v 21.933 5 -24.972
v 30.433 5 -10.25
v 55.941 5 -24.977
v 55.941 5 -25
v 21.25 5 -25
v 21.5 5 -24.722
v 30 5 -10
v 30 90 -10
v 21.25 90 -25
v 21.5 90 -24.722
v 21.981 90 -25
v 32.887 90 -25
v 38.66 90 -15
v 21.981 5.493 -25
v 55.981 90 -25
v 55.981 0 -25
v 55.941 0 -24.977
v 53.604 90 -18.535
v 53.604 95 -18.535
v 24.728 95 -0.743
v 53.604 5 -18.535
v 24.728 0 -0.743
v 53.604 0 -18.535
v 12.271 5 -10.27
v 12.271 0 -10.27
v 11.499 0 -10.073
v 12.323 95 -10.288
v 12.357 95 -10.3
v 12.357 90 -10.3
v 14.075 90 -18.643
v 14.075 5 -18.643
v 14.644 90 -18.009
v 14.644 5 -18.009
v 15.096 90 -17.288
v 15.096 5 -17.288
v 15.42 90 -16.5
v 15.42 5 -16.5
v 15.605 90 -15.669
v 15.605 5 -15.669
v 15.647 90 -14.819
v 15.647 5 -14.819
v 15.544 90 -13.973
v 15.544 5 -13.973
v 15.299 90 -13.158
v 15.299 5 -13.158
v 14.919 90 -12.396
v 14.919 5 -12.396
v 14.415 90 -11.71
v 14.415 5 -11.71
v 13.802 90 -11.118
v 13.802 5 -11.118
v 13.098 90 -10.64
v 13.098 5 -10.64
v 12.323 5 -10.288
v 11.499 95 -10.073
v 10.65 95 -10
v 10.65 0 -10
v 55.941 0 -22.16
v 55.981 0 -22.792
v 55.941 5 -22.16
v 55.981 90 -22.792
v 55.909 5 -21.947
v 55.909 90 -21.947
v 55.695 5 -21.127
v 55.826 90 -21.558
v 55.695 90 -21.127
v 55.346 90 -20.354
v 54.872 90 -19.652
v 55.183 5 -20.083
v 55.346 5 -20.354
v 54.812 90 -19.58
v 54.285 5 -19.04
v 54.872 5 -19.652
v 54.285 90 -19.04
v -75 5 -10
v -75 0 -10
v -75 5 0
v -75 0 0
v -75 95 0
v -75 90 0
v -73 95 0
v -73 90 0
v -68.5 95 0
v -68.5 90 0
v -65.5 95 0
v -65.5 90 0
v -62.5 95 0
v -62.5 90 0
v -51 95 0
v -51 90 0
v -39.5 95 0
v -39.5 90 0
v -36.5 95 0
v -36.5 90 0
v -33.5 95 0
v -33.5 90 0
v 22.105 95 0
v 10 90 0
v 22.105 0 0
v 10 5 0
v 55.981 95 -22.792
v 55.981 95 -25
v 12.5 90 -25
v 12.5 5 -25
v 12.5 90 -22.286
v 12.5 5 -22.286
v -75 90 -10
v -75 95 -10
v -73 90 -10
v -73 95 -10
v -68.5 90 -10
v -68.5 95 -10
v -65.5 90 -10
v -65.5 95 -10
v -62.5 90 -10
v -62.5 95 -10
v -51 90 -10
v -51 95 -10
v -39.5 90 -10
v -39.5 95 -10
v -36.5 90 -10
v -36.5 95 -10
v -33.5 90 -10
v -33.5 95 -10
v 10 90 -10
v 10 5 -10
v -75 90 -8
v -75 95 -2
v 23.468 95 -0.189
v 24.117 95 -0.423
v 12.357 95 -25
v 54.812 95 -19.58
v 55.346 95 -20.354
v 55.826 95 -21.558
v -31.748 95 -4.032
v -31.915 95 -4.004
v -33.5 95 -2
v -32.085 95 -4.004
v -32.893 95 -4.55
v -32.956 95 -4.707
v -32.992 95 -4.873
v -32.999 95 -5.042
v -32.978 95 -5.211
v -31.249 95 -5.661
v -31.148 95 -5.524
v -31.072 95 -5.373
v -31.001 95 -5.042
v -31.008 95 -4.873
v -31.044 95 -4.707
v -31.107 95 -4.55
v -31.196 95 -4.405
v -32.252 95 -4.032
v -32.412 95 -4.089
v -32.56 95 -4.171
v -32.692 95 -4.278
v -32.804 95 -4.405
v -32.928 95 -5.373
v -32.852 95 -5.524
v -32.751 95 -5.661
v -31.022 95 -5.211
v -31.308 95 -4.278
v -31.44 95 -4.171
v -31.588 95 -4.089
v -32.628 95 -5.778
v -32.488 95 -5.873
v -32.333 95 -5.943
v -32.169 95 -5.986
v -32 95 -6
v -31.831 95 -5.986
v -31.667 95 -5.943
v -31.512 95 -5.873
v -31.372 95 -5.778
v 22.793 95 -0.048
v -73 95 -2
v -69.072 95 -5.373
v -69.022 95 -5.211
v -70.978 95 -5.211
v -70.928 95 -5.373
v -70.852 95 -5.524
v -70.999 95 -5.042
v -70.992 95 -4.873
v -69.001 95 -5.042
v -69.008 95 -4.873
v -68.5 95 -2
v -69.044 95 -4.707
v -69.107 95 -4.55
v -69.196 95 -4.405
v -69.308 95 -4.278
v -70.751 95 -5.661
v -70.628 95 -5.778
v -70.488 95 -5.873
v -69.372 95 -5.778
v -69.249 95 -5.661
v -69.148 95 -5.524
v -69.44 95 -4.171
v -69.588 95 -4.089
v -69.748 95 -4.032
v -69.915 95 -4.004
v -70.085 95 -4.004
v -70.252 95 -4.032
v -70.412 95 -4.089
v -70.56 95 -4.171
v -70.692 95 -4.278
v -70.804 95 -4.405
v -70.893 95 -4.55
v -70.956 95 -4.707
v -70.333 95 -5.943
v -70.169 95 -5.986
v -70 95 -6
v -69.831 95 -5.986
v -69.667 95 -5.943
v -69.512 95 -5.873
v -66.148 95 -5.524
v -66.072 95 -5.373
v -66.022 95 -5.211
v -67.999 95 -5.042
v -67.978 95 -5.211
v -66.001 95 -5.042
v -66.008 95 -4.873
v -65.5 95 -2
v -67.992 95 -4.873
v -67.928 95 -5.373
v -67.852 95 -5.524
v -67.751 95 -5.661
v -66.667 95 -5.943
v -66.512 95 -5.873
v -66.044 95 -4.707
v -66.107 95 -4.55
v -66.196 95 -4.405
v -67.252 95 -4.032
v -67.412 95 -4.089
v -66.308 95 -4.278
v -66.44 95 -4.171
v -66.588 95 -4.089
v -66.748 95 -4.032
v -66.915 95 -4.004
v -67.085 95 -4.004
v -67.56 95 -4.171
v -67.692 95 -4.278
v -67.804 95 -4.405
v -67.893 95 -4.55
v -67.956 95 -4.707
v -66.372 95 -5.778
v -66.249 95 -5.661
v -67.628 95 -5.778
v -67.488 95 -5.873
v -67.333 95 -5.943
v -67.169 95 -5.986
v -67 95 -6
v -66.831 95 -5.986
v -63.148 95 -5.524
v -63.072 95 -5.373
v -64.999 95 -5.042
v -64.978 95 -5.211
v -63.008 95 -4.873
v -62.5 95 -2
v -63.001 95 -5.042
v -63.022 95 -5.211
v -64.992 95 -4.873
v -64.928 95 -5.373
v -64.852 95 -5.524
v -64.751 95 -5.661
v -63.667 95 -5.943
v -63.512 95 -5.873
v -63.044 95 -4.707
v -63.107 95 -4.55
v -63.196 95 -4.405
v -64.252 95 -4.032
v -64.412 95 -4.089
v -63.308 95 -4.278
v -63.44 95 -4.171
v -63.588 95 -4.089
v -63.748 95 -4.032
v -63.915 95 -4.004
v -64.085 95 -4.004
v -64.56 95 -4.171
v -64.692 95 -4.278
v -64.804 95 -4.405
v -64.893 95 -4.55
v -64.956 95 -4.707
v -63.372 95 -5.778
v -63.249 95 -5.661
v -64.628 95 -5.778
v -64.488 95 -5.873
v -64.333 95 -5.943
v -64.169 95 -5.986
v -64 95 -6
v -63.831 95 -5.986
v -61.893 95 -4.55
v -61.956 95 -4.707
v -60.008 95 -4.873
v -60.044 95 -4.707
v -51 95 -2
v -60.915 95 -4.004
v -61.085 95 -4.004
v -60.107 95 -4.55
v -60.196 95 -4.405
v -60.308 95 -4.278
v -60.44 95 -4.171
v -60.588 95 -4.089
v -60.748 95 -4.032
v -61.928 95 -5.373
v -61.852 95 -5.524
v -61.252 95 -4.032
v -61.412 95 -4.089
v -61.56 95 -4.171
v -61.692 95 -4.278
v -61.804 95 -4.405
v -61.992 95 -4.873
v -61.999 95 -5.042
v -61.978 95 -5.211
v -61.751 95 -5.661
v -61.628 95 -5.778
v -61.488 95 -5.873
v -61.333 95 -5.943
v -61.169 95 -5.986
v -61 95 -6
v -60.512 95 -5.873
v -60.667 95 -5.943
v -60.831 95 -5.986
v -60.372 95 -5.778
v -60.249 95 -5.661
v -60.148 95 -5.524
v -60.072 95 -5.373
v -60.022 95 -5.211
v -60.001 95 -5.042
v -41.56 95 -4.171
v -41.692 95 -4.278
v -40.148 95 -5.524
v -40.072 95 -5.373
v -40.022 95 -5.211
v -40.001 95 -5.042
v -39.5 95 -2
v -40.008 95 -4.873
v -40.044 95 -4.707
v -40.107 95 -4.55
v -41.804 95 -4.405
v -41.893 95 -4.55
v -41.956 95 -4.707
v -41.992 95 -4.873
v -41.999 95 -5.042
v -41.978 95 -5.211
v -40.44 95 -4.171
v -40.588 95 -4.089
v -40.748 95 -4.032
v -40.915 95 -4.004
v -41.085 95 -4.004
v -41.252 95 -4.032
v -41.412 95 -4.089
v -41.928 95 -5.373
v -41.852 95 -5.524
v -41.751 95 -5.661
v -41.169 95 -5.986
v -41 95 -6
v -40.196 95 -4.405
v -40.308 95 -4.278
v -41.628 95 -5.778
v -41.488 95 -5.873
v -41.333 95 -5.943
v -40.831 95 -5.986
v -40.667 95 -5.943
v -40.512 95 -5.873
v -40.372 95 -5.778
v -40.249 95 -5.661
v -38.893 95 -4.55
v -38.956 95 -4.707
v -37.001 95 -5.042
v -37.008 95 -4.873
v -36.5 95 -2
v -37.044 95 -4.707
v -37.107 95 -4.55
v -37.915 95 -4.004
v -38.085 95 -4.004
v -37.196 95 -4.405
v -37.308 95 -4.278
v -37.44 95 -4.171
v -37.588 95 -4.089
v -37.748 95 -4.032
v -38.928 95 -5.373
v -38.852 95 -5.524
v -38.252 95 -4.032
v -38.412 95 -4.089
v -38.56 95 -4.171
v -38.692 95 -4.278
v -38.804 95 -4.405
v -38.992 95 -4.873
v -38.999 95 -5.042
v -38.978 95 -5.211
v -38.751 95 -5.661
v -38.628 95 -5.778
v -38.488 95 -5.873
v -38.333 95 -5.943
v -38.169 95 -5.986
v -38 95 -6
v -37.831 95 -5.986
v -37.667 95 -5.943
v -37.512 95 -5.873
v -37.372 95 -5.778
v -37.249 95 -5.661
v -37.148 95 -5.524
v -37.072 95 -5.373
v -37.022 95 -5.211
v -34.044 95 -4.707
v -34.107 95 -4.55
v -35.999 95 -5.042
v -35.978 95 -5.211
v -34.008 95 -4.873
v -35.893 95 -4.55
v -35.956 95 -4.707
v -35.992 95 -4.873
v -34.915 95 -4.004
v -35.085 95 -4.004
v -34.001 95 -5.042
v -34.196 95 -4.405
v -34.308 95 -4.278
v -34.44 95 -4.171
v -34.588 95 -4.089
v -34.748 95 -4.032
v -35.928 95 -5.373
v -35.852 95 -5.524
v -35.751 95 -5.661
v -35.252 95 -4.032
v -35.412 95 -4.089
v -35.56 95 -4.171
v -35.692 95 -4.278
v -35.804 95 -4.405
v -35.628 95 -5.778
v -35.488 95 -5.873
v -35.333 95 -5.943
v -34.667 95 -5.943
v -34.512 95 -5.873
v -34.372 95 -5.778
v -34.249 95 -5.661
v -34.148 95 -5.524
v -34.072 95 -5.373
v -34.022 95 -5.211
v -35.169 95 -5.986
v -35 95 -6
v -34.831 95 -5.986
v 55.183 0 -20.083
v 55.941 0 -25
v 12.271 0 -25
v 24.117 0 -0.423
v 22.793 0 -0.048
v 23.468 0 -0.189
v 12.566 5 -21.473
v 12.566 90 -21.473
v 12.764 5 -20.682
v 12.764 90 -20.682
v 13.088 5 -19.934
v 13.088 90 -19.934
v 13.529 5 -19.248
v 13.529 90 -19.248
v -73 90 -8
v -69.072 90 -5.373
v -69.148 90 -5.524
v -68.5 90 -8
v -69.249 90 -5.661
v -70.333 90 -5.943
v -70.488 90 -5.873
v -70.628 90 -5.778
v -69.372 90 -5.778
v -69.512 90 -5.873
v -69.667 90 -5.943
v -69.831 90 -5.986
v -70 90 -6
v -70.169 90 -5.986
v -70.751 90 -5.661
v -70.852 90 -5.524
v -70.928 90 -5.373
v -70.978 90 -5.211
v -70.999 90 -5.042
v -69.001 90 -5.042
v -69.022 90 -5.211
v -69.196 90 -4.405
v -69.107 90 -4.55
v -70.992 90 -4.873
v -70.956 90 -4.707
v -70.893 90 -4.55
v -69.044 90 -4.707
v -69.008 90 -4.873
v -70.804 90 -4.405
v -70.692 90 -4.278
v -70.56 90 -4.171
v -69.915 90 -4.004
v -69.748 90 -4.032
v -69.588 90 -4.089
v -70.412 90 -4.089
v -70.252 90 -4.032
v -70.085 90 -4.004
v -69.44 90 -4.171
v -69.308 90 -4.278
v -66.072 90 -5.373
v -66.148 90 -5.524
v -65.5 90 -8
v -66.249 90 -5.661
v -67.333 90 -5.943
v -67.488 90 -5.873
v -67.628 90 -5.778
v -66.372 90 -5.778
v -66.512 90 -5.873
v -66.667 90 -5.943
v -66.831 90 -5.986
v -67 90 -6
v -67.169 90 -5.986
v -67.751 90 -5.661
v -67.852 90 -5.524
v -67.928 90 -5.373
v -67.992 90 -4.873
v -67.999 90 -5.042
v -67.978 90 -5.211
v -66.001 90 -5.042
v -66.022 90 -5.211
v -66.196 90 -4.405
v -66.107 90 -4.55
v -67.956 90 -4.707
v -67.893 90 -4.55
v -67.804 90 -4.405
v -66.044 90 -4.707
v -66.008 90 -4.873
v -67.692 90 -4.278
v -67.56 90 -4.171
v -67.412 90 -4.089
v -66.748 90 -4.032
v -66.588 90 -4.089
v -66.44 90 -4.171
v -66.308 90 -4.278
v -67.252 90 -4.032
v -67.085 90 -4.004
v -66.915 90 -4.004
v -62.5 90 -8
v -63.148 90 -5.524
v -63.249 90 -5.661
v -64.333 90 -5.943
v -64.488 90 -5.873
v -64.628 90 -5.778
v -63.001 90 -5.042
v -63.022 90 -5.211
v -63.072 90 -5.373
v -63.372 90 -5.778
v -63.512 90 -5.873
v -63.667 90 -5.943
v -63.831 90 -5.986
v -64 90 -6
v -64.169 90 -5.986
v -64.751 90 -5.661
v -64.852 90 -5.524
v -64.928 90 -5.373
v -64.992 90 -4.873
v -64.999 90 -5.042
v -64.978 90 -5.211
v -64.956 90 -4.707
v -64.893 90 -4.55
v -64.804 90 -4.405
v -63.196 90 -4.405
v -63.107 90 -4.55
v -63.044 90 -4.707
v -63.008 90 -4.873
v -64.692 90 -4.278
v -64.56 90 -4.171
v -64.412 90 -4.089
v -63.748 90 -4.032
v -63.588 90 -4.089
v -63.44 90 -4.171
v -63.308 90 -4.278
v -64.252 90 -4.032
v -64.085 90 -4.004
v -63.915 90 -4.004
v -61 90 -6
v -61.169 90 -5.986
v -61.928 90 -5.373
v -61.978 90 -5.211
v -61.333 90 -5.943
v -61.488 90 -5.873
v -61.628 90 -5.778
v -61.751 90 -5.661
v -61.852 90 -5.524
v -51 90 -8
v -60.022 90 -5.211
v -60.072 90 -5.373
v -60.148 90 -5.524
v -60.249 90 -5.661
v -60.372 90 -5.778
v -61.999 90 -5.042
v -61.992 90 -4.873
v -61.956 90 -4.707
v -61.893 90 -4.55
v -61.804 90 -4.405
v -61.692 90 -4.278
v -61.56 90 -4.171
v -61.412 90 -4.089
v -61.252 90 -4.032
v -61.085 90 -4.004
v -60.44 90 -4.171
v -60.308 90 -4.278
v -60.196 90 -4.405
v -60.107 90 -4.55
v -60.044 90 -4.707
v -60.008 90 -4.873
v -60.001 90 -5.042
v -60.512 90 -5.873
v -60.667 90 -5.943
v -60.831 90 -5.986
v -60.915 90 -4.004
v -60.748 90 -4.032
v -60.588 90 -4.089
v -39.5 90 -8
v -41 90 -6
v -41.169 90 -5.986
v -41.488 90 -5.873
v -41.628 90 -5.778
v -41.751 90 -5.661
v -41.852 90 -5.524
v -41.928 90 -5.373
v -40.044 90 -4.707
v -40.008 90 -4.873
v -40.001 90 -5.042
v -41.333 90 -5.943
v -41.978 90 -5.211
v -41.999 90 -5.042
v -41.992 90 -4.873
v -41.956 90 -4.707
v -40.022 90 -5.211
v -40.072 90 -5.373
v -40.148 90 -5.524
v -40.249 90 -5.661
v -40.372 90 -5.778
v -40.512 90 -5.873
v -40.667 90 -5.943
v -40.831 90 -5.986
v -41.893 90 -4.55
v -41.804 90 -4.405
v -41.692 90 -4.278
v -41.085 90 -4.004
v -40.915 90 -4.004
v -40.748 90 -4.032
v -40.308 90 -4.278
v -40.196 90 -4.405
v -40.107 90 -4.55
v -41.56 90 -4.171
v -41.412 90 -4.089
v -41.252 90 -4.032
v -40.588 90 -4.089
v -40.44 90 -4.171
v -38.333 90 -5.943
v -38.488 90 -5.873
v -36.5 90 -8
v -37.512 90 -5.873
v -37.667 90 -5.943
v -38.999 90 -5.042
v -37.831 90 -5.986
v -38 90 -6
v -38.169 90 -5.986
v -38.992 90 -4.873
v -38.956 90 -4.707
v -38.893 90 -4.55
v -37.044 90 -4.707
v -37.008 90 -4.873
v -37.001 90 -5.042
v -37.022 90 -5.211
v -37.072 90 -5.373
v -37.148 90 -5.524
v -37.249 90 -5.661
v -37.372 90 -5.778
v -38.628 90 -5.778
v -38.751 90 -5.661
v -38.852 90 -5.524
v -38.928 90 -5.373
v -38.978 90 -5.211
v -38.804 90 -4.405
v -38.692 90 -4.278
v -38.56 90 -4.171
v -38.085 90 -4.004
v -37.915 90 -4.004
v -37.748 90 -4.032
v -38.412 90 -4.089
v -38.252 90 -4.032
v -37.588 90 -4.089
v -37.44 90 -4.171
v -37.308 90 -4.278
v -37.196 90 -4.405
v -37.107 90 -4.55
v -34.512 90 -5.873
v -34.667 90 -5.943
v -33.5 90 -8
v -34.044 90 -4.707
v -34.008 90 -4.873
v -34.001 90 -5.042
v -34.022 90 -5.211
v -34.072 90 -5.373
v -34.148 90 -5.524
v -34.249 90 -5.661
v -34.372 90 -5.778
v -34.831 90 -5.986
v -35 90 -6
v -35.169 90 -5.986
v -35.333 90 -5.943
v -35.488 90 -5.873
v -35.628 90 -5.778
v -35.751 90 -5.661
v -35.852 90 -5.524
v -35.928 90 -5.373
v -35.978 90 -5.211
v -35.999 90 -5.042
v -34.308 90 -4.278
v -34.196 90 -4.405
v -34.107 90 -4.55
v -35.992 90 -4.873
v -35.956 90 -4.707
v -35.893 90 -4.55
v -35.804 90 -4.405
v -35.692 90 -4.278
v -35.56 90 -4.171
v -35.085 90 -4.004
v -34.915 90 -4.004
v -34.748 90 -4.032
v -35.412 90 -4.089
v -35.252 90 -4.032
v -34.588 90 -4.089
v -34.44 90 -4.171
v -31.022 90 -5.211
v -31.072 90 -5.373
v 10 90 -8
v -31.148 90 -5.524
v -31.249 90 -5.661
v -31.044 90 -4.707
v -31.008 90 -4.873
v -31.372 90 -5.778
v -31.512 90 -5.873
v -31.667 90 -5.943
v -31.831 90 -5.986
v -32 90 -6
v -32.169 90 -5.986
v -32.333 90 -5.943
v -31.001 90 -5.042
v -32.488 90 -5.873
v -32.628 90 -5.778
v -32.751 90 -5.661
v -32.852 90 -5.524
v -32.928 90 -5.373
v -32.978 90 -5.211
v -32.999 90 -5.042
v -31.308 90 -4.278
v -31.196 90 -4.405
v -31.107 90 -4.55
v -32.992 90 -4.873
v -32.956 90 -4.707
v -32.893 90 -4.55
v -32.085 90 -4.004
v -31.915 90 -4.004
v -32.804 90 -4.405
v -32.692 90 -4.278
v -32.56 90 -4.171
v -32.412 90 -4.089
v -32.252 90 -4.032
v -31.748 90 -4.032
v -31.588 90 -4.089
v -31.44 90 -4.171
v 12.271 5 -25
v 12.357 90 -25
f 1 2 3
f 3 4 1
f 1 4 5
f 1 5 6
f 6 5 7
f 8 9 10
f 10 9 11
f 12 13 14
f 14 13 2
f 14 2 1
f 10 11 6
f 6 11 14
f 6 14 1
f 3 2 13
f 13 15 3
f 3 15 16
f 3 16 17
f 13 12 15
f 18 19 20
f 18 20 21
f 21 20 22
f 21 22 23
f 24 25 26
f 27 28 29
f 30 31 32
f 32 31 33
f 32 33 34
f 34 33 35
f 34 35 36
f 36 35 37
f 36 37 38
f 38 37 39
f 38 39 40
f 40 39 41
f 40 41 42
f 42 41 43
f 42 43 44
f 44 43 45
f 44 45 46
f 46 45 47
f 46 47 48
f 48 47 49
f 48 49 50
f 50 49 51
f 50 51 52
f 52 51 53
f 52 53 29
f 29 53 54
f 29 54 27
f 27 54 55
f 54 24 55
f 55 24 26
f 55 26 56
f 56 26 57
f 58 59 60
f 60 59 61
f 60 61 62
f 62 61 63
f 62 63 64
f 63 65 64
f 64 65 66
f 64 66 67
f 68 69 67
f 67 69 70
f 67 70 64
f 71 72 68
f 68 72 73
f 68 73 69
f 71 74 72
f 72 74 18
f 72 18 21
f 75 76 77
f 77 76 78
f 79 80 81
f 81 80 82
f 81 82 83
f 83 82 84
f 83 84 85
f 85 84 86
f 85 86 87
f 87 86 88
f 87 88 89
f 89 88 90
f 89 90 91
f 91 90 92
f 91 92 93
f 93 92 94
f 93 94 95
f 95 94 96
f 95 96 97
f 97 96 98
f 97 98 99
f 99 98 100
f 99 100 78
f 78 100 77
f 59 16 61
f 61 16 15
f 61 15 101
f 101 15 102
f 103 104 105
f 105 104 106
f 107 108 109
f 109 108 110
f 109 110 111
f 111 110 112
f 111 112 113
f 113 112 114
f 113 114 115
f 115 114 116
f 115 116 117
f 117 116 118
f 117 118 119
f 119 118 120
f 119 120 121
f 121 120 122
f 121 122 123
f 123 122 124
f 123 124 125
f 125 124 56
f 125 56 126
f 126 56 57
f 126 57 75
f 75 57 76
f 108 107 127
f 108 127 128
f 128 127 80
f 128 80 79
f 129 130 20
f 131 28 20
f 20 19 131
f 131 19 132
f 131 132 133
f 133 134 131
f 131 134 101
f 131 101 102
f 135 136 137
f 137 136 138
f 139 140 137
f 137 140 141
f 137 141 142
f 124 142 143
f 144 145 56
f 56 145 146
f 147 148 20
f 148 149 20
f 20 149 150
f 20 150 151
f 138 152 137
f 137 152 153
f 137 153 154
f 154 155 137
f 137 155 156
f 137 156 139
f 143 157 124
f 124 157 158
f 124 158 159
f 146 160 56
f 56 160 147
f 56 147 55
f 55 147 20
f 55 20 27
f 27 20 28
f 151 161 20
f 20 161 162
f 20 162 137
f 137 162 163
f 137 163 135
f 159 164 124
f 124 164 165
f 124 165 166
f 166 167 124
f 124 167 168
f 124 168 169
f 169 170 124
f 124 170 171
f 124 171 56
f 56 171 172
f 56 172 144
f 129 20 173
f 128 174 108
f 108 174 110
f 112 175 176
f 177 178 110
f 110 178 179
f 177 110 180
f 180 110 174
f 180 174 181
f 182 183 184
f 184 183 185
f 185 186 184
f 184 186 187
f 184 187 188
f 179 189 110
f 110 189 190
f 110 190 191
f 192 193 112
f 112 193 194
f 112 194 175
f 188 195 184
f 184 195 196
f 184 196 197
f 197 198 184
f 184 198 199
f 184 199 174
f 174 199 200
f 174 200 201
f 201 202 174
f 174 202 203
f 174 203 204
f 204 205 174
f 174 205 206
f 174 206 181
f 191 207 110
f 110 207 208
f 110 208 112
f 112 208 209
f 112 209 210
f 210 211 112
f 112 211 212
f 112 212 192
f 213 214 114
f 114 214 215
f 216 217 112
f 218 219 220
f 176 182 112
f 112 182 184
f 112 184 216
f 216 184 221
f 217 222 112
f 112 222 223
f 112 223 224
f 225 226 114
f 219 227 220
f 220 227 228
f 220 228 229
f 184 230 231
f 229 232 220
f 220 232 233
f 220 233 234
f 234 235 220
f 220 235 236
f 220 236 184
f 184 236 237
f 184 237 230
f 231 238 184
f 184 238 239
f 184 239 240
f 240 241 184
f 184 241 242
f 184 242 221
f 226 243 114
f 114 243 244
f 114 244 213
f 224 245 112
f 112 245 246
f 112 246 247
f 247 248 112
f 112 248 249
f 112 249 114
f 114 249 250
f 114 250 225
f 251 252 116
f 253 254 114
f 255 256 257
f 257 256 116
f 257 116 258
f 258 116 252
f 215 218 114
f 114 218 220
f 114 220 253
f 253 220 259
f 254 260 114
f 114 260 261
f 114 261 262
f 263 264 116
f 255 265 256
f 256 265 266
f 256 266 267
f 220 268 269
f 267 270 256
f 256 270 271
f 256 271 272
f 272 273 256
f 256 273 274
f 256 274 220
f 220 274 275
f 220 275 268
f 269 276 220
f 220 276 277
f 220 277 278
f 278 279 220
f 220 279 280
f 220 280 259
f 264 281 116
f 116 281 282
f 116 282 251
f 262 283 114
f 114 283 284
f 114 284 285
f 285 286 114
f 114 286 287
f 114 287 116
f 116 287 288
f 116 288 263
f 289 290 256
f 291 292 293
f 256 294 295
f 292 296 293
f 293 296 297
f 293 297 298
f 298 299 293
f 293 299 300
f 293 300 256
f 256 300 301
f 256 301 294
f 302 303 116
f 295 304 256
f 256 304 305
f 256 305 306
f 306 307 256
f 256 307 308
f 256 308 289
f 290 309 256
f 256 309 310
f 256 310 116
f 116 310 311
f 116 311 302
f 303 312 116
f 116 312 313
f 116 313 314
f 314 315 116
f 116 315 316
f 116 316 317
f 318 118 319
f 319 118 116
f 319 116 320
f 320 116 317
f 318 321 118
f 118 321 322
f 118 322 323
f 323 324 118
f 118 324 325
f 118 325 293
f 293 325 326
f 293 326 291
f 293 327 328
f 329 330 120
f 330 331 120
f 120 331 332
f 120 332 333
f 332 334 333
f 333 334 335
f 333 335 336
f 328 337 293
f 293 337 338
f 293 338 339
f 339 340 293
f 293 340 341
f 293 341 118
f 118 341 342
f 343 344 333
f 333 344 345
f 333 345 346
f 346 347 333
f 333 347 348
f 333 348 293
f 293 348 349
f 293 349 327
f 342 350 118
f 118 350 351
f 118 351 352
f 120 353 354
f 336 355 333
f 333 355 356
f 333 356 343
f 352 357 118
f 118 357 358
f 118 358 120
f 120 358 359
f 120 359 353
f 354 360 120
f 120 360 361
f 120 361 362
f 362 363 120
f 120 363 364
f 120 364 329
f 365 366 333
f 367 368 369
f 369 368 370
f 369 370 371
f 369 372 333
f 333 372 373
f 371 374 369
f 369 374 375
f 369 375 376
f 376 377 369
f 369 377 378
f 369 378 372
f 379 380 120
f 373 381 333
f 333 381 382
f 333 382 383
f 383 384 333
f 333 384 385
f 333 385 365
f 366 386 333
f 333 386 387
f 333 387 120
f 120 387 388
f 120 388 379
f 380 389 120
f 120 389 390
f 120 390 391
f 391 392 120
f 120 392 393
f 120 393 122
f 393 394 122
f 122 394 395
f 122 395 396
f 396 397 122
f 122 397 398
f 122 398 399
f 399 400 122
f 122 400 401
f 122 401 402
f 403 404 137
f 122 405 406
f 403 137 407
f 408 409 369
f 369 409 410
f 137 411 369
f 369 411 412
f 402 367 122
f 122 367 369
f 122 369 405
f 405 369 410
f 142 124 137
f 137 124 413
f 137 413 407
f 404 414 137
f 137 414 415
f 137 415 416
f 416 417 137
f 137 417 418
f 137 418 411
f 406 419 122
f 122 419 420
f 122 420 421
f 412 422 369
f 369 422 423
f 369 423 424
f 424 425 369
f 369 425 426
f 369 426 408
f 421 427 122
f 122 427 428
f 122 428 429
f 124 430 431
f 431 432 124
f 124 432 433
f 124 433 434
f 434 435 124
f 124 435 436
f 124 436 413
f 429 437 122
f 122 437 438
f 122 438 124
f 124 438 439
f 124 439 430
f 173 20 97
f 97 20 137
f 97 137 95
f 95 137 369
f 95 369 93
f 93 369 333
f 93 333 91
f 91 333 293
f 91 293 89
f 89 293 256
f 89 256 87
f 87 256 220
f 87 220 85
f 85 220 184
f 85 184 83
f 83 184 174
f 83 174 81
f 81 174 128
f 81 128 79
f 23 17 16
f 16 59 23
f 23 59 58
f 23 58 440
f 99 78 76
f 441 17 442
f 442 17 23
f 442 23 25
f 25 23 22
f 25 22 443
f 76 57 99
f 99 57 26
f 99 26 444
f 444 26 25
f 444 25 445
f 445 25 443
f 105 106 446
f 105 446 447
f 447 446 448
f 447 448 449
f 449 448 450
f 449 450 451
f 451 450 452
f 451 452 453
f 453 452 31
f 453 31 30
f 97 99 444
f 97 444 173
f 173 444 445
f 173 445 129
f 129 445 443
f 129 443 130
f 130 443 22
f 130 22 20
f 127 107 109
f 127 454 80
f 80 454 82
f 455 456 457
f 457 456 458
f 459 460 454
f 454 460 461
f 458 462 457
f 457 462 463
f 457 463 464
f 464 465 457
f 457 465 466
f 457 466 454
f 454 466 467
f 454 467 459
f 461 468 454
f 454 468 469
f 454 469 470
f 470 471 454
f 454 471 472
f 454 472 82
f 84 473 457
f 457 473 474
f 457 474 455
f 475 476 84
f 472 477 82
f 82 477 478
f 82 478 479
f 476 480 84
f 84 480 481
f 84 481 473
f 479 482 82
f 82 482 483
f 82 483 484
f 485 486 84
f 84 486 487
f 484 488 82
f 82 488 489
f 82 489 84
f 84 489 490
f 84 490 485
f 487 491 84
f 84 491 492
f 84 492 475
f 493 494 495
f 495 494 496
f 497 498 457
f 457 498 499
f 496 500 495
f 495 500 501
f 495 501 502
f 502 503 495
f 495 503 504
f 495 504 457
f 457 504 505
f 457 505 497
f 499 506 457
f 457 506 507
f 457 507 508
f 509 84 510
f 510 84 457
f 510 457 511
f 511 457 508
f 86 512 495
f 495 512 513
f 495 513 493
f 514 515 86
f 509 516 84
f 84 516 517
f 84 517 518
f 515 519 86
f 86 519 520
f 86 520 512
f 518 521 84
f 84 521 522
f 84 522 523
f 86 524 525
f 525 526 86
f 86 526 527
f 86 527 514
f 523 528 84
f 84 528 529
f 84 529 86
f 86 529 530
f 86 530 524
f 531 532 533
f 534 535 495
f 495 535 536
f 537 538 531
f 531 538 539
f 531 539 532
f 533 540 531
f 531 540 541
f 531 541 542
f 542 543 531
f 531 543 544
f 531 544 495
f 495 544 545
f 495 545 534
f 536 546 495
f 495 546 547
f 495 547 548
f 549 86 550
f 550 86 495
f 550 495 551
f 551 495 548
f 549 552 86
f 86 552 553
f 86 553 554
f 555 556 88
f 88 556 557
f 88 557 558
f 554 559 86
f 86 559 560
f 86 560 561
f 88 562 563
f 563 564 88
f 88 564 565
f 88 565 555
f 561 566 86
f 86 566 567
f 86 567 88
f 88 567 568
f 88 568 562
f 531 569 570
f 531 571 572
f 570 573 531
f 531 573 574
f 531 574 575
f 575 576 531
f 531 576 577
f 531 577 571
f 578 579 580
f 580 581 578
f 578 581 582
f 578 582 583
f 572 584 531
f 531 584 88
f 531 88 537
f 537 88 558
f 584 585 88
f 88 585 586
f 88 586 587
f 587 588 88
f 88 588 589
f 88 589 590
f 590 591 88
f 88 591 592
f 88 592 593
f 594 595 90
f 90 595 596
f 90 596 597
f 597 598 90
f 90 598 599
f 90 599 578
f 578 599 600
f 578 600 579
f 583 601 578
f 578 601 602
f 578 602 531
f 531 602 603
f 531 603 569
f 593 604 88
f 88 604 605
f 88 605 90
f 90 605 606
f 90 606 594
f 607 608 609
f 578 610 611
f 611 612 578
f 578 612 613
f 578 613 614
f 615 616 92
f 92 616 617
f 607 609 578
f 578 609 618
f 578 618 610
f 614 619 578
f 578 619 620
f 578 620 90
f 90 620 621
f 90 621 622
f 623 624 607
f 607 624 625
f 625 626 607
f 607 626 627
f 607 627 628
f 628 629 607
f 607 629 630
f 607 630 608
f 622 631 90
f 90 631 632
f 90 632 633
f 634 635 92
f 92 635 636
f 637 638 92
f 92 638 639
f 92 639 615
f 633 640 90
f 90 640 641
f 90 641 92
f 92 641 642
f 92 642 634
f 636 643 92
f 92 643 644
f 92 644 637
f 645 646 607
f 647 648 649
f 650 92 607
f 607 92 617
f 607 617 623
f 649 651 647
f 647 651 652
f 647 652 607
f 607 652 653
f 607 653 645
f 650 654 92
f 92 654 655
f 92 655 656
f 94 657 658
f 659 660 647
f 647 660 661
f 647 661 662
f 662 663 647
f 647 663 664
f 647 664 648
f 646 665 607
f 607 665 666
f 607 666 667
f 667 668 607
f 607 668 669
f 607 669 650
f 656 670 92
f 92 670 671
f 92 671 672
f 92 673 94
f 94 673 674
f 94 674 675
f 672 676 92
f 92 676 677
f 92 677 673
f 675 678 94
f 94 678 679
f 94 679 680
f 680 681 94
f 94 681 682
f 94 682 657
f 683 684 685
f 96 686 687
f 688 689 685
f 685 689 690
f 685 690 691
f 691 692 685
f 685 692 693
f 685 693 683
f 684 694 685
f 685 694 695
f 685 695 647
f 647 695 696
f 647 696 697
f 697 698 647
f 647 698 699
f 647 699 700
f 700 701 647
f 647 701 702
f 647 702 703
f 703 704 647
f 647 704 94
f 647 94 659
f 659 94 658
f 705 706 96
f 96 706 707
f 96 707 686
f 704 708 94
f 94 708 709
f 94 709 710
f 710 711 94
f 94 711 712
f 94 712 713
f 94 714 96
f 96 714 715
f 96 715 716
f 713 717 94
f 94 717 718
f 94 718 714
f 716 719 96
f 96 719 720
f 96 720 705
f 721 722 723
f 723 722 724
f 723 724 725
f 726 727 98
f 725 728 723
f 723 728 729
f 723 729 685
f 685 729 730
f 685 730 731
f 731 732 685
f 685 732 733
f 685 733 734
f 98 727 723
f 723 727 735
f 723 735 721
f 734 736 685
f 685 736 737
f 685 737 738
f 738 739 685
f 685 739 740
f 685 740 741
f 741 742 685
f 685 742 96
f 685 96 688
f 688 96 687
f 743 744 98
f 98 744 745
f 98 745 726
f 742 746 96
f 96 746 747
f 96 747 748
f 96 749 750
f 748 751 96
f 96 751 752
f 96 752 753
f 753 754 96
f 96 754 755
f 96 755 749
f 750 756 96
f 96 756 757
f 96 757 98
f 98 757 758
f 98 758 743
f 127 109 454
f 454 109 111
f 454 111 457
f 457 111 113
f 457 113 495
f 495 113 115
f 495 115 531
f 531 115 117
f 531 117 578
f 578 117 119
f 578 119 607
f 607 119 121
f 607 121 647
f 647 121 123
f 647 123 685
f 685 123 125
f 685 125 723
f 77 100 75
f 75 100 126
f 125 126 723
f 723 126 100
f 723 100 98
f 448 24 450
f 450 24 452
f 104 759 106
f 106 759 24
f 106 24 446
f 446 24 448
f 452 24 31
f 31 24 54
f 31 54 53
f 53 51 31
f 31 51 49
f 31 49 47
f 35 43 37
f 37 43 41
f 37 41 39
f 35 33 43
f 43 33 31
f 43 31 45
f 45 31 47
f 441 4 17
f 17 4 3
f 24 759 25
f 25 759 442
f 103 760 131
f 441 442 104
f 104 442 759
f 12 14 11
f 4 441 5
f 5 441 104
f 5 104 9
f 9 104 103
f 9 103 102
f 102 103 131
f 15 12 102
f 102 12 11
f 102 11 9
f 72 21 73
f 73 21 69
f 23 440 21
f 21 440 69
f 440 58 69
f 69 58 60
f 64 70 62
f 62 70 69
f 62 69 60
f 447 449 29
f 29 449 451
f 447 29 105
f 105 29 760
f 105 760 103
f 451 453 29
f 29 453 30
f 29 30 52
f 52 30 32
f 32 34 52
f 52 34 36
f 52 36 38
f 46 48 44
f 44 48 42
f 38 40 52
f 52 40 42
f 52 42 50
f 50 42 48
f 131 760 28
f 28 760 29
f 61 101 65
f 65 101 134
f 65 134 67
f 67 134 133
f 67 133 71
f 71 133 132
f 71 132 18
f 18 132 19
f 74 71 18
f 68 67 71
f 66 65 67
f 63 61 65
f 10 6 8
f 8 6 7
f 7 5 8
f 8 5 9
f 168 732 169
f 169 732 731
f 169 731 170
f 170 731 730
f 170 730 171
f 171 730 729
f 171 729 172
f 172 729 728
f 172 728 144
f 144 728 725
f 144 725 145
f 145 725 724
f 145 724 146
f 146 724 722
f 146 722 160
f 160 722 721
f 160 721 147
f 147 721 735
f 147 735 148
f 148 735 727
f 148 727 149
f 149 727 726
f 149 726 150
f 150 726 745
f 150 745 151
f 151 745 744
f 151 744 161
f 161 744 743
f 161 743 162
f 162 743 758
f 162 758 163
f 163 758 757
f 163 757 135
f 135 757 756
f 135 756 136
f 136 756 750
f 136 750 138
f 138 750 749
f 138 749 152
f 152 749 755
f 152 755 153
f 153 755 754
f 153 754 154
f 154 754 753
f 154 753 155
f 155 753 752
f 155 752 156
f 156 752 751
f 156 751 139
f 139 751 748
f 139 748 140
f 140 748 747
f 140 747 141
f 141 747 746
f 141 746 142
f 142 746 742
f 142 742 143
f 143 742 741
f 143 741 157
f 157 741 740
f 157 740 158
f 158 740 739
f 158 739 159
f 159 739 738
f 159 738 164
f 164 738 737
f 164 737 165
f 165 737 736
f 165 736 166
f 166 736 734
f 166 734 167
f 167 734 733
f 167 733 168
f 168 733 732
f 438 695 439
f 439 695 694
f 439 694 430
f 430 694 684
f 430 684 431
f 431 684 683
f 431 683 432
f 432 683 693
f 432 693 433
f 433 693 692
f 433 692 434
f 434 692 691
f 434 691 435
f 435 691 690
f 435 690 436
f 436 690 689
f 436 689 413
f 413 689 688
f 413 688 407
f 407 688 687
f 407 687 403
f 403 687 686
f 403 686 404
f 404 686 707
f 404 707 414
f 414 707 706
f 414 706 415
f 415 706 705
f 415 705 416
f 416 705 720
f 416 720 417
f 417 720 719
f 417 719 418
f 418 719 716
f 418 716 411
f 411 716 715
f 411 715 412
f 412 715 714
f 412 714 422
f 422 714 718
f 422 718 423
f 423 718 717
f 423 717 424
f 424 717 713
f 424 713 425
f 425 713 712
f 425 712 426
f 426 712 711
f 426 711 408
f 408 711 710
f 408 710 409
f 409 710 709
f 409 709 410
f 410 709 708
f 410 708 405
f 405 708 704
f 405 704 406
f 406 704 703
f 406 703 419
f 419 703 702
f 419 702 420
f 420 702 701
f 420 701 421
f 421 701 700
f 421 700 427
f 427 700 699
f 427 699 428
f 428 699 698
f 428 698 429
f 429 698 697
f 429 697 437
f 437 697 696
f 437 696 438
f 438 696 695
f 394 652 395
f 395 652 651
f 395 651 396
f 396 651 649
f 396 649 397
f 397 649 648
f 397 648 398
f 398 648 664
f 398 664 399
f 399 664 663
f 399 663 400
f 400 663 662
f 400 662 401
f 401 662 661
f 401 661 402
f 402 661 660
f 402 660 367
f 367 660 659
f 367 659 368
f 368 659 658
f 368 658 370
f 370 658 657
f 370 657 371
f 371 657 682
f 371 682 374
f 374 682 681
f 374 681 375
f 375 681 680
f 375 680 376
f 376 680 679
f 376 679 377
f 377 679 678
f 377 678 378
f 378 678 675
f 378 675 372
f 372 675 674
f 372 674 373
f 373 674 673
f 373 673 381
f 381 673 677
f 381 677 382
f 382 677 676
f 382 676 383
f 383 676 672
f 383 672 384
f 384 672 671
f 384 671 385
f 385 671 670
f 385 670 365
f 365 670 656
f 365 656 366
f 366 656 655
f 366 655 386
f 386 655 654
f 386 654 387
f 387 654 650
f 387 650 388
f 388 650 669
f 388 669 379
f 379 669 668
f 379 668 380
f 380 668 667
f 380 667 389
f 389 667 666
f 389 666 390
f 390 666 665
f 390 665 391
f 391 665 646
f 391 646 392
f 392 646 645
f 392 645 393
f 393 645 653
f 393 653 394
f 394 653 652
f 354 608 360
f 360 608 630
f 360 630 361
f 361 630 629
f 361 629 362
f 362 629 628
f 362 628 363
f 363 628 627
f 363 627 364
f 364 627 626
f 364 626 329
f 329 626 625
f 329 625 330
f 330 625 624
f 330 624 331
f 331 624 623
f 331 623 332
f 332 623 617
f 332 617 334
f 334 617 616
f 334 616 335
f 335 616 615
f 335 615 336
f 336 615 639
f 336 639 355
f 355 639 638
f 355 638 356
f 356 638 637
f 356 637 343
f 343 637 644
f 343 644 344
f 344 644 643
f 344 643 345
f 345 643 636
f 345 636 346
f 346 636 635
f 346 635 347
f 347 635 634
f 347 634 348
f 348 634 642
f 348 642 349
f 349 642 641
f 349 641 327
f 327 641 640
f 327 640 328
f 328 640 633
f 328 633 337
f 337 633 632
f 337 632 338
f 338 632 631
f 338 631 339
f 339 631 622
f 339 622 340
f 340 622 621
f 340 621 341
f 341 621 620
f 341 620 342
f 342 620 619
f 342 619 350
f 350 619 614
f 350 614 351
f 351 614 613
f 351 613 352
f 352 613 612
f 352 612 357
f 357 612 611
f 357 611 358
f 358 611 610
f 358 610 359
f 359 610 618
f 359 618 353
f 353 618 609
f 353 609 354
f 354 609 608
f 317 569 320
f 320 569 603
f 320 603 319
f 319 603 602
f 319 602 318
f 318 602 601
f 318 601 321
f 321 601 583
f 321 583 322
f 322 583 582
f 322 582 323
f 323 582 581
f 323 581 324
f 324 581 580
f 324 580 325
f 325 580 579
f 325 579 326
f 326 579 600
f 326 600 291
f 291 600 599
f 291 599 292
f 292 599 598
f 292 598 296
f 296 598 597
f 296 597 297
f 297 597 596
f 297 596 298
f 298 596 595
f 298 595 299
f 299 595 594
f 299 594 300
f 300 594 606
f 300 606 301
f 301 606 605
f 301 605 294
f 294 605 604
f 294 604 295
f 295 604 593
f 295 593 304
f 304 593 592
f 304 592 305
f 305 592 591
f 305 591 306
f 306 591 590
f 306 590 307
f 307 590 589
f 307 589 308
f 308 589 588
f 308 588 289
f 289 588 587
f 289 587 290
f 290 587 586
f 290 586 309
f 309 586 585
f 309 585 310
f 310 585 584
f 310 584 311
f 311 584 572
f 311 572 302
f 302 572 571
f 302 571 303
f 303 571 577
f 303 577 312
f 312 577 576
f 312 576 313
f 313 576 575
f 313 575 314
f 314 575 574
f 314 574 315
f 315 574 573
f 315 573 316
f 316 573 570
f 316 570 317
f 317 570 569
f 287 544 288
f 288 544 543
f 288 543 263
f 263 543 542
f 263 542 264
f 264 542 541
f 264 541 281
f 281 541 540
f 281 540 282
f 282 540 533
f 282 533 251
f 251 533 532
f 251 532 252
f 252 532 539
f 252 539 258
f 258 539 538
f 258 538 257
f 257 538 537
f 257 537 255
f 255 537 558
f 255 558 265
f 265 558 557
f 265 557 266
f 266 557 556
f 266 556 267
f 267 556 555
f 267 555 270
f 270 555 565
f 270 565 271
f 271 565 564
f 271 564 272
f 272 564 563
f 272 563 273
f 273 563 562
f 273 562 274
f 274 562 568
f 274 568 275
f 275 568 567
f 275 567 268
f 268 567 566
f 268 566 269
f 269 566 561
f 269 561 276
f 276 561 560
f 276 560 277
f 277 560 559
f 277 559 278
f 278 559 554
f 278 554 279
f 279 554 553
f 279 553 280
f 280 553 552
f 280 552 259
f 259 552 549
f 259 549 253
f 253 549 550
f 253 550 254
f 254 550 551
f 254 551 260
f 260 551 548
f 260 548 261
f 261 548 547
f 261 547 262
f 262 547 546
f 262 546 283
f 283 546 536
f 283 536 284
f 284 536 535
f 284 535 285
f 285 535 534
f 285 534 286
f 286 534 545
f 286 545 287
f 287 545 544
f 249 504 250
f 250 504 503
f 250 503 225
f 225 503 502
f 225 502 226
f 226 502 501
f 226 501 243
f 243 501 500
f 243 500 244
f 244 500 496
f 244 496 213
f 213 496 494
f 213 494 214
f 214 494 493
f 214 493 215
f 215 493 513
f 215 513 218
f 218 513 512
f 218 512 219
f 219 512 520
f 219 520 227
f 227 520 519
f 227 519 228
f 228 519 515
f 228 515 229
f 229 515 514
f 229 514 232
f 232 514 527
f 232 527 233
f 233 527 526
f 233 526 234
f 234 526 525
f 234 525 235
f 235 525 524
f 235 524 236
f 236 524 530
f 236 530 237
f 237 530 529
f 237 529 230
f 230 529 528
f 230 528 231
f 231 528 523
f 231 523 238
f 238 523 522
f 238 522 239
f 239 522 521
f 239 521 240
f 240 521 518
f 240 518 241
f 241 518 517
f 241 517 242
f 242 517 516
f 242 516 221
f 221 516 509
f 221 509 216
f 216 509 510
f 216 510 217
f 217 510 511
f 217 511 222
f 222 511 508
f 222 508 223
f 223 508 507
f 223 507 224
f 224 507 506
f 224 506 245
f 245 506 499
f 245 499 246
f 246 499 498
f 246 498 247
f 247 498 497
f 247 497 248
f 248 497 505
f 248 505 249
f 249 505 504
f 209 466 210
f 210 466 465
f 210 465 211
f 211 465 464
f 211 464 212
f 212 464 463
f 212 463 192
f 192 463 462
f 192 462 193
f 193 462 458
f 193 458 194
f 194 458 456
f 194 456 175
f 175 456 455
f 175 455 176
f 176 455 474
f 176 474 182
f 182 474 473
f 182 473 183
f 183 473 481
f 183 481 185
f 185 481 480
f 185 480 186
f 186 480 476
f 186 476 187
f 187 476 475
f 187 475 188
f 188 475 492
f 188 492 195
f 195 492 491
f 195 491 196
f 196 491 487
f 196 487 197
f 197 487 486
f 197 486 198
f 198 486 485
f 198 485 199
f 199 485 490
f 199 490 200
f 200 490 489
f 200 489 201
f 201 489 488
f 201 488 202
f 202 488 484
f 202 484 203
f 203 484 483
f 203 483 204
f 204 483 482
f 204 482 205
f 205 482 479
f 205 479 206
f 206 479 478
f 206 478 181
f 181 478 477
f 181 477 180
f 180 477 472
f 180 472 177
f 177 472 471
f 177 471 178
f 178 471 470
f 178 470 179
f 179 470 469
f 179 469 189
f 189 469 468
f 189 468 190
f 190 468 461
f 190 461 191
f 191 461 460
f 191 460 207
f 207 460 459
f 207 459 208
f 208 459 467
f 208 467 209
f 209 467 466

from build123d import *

# Parameters (mm, degrees)
BOSS_EXTRUDE3_DEPTH                  = 95
FILLET8_R                            = 5
FILLET9_R                            = 5
FILLET10_R                           = 5
ESQUISSE3_W                          = 30
ESQUISSE3_H                          = 85
ENL_V_MAT_EXTRU_1_DEPTH              = 122.963109328
ESQUISSE5_W                          = 10
ESQUISSE5_H                          = 60
ENL_V_MAT_EXTRU_2_DEPTH              = 122.963109328
ESQUISSE14_W                         = 10
ESQUISSE14_H                         = 25
ENL_V_MAT_EXTRU_7_DEPTH              = 122.963109328
ESQUISSE15_W                         = 30
ESQUISSE15_H                         = 85
ENL_V_MAT_EXTRU_8_DEPTH              = 122.963109328
ESQUISSE21_W                         = 15
ESQUISSE21_H                         = 85
ENL_V_MAT_EXTRU_9_DEPTH              = 122.963109328
ESQUISSE61_W                         = 43.670119933
ESQUISSE61_H                         = 20.938302955
BOSS_EXTRU_3_DEPTH                   = 5
ENL_V_MAT_EXTRU_18_DEPTH             = 5
ESQUISSE69_W                         = 43.623857554
ESQUISSE69_H                         = 17.142891977
BOSS_EXTRU_4_DEPTH                   = 5
ENL_V_MAT_EXTRU_21_DEPTH             = 10
BOSS_EXTRU_7_DEPTH                   = 17
ENL_V_MAT_EXTRU_25_REACH             = 122.865
ENL_V_MAT_EXTRU_25_DIRECTION_2_DEPTH = 121.865309224
BOSS_EXTRU_10_DEPTH                  = 86
ESQUISSE84_R                         = 1
ENL_V_MAT_EXTRU_26_DEPTH             = 120.791485603


with BuildPart() as part:
    # Sketch1 → Boss-Extrude3 (new body)
    with BuildSketch(Plane(origin=(0, 0, 0), x_dir=(1, 0, 0), z_dir=(0, 1, 0))):
        Polygon((-75, 0), (-75, 10), (24.166666667, 10), (12.5, 20), (12.5, 25), (30, 10), (55.980762114, 25), (55.980762114, 20), (28.449754988, 3.036452995), (23.521740286, 0), align=None)
    extrude(amount=BOSS_EXTRUDE3_DEPTH)

    # Fillet8
    fillet8_edges = [part.edges().sort_by_distance(p)[0] for p in [
        (24.166666667, 47.5, -10),
    ]]
    fillet(fillet8_edges, radius=FILLET8_R)

    # Fillet9
    fillet9_edges = [part.edges().sort_by_distance(p)[0] for p in [
        (55.980762114, 47.5, -20),
        (12.5, 47.5, -20),
    ]]
    fillet(fillet9_edges, radius=FILLET9_R)

    # Fillet10
    fillet10_edges = [part.edges().sort_by_distance(p)[0] for p in [
        (23.521740286, 47.5, 0),
    ]]
    fillet(fillet10_edges, radius=FILLET10_R)

    # Esquisse3 → Enlèv. mat.-Extru.1 (cut, through all)
    with BuildSketch(Plane(origin=(0, 0, -10), x_dir=(-1, 0, 0), z_dir=(0, 0, -1))):
        with Locations((60, 47.5)):
            Rectangle(ESQUISSE3_W, ESQUISSE3_H)
    extrude(amount=-ENL_V_MAT_EXTRU_1_DEPTH, mode=Mode.SUBTRACT)

    # Esquisse5 → Enlèv. mat.-Extru.2 (cut, through all)
    with BuildSketch(Plane(origin=(0, 0, -10), x_dir=(-1, 0, 0), z_dir=(0, 0, -1))):
        with Locations((40, 35)):
            Rectangle(ESQUISSE5_W, ESQUISSE5_H)
    extrude(amount=-ENL_V_MAT_EXTRU_2_DEPTH, mode=Mode.SUBTRACT)

    # Esquisse14 → Enlèv. mat.-Extru.7 (cut, through all)
    with BuildSketch(Plane(origin=(0, 0, -10), x_dir=(-1, 0, 0), z_dir=(0, 0, -1))):
        with Locations((40, 77.5)):
            Rectangle(ESQUISSE14_W, ESQUISSE14_H)
    extrude(amount=-ENL_V_MAT_EXTRU_7_DEPTH, mode=Mode.SUBTRACT)

    # Esquisse15 → Enlèv. mat.-Extru.8 (cut, through all)
    with BuildSketch(Plane(origin=(0, 0, -10), x_dir=(-1, 0, 0), z_dir=(0, 0, -1))):
        with Locations((20, 47.5)):
            Rectangle(ESQUISSE15_W, ESQUISSE15_H)
    extrude(amount=-ENL_V_MAT_EXTRU_8_DEPTH, mode=Mode.SUBTRACT)

    # Esquisse21 → Enlèv. mat.-Extru.9 (cut, through all)
    with BuildSketch(Plane(origin=(0, 0, -10), x_dir=(-1, 0, 0), z_dir=(0, 0, -1))):
        with Locations((-2.5, 47.5)):
            Rectangle(ESQUISSE21_W, ESQUISSE21_H)
    extrude(amount=-ENL_V_MAT_EXTRU_9_DEPTH, mode=Mode.SUBTRACT)

    # Esquisse61 → Boss.-Extru.3 (add)
    with BuildSketch(Plane(origin=(0, 0, 0), x_dir=(1, 0, 0), z_dir=(0, 1, 0))):
        with Locations((34.105579197, 14.530848522)):
            Rectangle(ESQUISSE61_W, ESQUISSE61_H)
    extrude(amount=BOSS_EXTRU_3_DEPTH)

    # Esquisse63 → Enlèv. mat.-Extru.18 (cut)
    with BuildSketch(Plane(origin=(0, 5, 0), x_dir=(1, 0, 0), z_dir=(0, 1, 0))):
        Polygon((55.940639163, 22.159973494), (55.183036705, 20.082720902), (53.603647545, 18.535313491), (30.113675938, 4.061697045), (55.940639163, 4.061697045), align=None)
    extrude(amount=-ENL_V_MAT_EXTRU_18_DEPTH, mode=Mode.SUBTRACT)

    # Esquisse69 → Boss.-Extru.4 (add)
    with BuildSketch(Plane(origin=(0, 95, 0), x_dir=(1, 0, 0), z_dir=(0, 1, 0))):
        with Locations((34.168833337, 16.428554012)):
            Rectangle(ESQUISSE69_W, ESQUISSE69_H)
    extrude(amount=-BOSS_EXTRU_4_DEPTH)

    # Esquisse71 → Enlèv. mat.-Extru.21 (cut)
    with BuildSketch(Plane.XZ.offset(-90)):
        Polygon((55.980762114, -22.792128264), (55.826118619, -21.558223754), (55.346218971, -20.354345168), (54.812246486, -19.579694996), (53.603647545, -18.535313491), (36.273442327, -7.857108023), (55.980762114, -7.857108023), align=None)
    extrude(amount=-ENL_V_MAT_EXTRU_21_DEPTH, mode=Mode.SUBTRACT)

    # Esquisse77 → Boss.-Extru.7 (add)
    with BuildSketch(Plane(origin=(3.169872981, 0, 5.490381057), x_dir=(-0.8660254037844384, 0, 0.5000000000000004), z_dir=(-0.5000000000000004, 0, -0.8660254037844384))):
        Polygon((-30.980762114, 90), (-40.980762114, 90), (-31.480762114, 5), (-30.980762114, 5), align=None)
    extrude(amount=BOSS_EXTRU_7_DEPTH)

    # Esquisse79 → Enlèv. mat.-Extru.25 (cut, up to next)
    with BuildSketch(Plane(origin=(0, 90, 0), x_dir=(1, 0, 0), z_dir=(0, 1, 0)), mode=Mode.PRIVATE) as enl_v_mat_extru_25_sk1:
        Polygon((21.980762114, 25), (32.886751346, 25), (30.160254038, 29.722431864), align=None)
    enl_v_mat_extru_25_tool1 = extrude(enl_v_mat_extru_25_sk1.sketch, amount=-ENL_V_MAT_EXTRU_25_REACH, mode=Mode.PRIVATE) & part.part
    add(enl_v_mat_extru_25_tool1.solids().sort_by_distance((28.342589, 90, -26.574144))[0], mode=Mode.SUBTRACT)

    # Esquisse79 → Enlèv. mat.-Extru.25 direction 2 (cut)
    with BuildSketch(Plane(origin=(0, 90, 0), x_dir=(1, 0, 0), z_dir=(0, 1, 0))):
        Polygon((21.980762114, 25), (32.886751346, 25), (30.160254038, 29.722431864), align=None)
    extrude(amount=ENL_V_MAT_EXTRU_25_DIRECTION_2_DEPTH, mode=Mode.SUBTRACT)

    # Esquisse80 → Boss.-Extru.10 (add)
    with BuildSketch(Plane(origin=(0, 5, 0), x_dir=(1, 0, 0), z_dir=(0, 1, 0))):
        Polygon((12.5, 25), (30, 10), (21.25, 25), align=None)
    extrude(amount=BOSS_EXTRU_10_DEPTH)

    # Esquisse84 → Enlèv. mat.-Extru.26 (cut, through all)
    with BuildSketch(Plane(origin=(0, 90, 0), x_dir=(-1, 0, 0), z_dir=(0, -1, 0))):
        with Locations(Location((70, 5, 0), (0, 0, 90))):
            Circle(ESQUISSE84_R)
        with Locations(Location((67, 5, 0), (0, 0, 90))):
            Circle(ESQUISSE84_R)
        with Locations(Location((64, 5, 0), (0, 0, 90))):
            Circle(ESQUISSE84_R)
        with Locations(Location((61, 5, 0), (0, 0, 90))):
            Circle(ESQUISSE84_R)
        with Locations(Location((41, 5, 0), (0, 0, 90))):
            Circle(ESQUISSE84_R)
        with Locations(Location((38, 5, 0), (0, 0, 90))):
            Circle(ESQUISSE84_R)
        with Locations(Location((35, 5, 0), (0, 0, 90))):
            Circle(ESQUISSE84_R)
        with Locations(Location((32, 5, 0), (0, 0, 90))):
            Circle(ESQUISSE84_R)
    extrude(amount=-ENL_V_MAT_EXTRU_26_DEPTH, mode=Mode.SUBTRACT)


solid = part.part
